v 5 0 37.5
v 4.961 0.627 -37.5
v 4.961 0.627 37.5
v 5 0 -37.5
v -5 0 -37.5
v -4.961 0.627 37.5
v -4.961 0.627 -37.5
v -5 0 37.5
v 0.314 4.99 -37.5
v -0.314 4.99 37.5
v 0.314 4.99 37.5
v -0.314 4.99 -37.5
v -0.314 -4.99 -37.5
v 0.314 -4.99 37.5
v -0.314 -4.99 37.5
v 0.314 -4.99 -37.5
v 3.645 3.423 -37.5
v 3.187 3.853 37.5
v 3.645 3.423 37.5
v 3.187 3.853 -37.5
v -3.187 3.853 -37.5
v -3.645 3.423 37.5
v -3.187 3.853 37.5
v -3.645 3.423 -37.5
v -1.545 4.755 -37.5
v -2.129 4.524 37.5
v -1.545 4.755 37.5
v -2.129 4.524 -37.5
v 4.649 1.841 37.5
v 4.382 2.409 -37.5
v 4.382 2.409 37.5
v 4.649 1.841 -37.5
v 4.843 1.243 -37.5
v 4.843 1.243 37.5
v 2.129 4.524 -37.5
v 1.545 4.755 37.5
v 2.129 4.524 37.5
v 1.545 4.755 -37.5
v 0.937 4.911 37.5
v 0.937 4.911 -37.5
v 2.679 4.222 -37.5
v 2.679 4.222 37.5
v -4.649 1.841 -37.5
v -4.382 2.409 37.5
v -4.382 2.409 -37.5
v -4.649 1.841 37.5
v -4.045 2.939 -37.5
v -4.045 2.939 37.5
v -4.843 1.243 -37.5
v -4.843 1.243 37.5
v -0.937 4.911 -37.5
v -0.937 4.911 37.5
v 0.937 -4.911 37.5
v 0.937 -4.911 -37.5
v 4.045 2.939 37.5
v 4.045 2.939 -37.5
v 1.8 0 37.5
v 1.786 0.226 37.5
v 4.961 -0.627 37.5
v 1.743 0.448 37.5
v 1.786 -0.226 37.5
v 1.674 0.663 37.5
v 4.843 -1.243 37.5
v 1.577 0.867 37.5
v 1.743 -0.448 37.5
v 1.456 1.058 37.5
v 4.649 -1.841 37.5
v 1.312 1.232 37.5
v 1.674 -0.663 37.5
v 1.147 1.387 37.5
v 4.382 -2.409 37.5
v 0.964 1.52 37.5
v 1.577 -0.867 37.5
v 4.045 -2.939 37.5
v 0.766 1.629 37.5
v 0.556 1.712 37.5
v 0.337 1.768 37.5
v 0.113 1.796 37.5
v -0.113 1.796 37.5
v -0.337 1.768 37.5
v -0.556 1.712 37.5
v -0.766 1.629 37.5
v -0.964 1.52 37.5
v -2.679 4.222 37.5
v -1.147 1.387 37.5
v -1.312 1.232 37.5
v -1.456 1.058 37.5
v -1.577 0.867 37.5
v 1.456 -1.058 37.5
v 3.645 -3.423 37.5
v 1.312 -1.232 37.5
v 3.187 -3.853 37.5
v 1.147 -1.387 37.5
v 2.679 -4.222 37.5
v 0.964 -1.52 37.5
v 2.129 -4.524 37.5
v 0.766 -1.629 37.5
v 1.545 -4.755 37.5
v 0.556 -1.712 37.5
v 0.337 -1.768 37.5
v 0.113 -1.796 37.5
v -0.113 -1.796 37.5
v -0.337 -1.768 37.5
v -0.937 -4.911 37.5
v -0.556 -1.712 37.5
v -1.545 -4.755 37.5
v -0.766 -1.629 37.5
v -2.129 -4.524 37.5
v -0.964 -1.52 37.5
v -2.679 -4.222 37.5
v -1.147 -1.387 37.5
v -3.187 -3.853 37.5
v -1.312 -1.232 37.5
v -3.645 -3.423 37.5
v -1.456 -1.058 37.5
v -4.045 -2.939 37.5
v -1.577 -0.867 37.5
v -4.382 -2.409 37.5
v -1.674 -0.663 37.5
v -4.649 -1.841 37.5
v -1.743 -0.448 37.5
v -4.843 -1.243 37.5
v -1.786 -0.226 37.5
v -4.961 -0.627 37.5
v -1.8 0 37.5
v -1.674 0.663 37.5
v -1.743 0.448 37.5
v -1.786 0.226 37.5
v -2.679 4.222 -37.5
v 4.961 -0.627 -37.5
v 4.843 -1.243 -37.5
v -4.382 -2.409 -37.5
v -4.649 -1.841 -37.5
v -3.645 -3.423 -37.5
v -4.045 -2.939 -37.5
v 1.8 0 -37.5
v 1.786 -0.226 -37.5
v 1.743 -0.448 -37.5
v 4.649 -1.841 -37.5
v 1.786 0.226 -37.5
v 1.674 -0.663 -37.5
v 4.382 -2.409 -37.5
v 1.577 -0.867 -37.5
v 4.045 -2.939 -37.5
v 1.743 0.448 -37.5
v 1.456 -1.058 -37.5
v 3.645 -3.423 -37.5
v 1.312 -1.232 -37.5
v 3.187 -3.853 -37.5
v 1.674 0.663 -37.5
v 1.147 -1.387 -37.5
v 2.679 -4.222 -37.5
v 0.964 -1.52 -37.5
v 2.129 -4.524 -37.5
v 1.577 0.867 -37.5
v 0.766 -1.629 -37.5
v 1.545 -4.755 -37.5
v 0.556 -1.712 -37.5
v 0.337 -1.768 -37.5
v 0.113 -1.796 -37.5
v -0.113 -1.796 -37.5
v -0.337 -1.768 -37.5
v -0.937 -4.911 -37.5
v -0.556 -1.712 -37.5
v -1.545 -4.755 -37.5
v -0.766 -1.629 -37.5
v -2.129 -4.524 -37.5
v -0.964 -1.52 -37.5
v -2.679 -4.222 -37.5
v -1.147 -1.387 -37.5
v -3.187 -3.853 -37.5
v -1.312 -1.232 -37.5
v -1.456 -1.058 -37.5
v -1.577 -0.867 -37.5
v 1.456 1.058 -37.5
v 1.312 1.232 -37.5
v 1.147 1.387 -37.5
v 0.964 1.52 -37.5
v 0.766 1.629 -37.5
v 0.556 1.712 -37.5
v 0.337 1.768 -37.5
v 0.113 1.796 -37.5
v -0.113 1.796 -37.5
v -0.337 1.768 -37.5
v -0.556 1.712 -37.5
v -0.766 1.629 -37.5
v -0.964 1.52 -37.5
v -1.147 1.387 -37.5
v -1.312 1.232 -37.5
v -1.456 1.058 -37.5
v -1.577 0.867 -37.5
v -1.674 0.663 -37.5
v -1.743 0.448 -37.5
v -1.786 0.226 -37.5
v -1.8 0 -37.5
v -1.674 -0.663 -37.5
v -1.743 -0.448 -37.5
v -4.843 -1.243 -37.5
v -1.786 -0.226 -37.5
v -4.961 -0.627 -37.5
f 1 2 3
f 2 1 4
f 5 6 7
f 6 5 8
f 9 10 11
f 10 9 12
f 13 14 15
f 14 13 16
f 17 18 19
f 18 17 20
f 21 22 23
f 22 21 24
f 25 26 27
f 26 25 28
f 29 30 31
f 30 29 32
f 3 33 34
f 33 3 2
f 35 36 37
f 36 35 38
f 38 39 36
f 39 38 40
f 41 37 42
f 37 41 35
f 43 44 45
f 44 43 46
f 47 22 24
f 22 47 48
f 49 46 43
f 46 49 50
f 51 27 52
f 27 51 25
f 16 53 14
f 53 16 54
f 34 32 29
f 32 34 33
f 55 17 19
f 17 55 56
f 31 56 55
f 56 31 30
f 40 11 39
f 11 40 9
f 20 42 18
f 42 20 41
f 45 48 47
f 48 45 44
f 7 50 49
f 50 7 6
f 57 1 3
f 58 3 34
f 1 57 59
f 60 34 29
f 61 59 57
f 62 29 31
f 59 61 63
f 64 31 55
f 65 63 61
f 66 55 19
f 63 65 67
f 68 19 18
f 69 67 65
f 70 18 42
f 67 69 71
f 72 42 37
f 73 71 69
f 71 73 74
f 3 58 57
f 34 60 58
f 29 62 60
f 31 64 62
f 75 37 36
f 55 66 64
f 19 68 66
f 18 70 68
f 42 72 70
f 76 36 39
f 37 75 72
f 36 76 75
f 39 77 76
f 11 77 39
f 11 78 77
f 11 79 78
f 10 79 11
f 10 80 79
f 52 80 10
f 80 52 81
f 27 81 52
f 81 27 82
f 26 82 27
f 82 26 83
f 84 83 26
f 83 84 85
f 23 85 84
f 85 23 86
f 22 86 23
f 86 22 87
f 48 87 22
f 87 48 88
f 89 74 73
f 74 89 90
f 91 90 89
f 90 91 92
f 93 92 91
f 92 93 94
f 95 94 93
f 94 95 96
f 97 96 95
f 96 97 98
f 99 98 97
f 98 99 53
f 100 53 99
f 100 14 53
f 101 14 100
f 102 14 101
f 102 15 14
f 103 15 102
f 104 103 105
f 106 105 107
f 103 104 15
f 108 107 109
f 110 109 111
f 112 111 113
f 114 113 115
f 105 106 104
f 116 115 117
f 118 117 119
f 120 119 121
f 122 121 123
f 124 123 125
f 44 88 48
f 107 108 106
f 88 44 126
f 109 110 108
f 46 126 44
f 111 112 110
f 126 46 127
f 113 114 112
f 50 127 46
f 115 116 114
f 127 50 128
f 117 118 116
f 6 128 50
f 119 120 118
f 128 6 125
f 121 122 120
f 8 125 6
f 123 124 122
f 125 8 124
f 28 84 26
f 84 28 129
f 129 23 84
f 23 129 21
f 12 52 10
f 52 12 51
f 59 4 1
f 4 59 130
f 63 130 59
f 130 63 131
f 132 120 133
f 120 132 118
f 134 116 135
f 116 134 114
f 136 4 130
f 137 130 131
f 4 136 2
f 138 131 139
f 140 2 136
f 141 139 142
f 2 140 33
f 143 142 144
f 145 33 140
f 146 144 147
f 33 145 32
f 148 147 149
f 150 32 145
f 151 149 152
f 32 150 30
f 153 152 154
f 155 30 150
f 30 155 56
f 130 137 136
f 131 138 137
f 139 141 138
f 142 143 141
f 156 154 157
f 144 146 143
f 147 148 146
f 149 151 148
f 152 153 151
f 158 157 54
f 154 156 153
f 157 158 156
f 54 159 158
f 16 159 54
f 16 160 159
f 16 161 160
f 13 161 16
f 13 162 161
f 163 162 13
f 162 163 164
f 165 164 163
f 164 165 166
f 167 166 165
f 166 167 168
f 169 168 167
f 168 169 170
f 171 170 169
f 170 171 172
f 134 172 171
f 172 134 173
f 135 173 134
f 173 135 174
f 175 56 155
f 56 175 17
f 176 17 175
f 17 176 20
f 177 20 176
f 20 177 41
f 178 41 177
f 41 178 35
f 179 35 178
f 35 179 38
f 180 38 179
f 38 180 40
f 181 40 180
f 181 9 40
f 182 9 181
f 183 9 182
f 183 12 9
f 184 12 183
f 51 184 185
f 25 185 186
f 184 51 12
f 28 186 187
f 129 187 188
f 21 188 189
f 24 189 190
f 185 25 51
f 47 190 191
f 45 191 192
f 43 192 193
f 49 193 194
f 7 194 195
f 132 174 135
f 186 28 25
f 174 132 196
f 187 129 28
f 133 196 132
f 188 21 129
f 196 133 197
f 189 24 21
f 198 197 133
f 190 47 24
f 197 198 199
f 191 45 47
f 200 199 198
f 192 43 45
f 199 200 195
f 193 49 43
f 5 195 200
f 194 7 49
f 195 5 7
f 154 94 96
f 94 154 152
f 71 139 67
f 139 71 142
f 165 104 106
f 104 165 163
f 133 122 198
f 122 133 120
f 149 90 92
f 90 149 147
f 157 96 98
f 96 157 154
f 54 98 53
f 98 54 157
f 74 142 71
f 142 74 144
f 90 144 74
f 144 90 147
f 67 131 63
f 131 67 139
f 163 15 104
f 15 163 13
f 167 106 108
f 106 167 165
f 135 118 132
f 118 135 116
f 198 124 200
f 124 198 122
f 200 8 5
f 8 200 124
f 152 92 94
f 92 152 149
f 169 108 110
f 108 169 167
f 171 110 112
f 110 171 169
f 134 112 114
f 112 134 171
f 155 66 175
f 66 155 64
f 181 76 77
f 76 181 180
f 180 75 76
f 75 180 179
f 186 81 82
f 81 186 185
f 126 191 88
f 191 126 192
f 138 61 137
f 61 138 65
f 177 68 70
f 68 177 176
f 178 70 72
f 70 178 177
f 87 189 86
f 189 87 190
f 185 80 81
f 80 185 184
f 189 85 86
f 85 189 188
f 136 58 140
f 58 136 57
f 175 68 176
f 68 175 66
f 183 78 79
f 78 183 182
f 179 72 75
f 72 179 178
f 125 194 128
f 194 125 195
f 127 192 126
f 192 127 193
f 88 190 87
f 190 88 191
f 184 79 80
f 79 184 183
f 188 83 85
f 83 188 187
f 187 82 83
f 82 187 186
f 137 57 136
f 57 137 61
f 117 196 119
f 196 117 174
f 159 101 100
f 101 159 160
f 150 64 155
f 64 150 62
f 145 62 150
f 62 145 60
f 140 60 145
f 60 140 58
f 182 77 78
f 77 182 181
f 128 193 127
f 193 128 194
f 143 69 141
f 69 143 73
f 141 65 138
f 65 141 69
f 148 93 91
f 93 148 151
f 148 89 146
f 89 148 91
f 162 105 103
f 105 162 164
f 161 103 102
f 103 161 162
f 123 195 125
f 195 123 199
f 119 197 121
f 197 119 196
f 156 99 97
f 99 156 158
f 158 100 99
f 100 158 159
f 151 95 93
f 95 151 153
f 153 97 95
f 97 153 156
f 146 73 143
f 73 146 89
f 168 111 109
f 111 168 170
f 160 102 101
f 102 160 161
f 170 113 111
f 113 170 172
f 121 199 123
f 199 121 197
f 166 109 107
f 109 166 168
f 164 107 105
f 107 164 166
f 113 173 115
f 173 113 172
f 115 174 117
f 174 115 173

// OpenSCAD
$fn = 50;


difference() {
	union() {
		translate(v = [0, 0, -37.5000000000]) {
			cylinder(h = 75, r = 5.0000000000);
		}
	}
	union() {
		translate(v = [0, 0, -100.0000000000]) {
			cylinder(h = 200, r = 1.8000000000);
		}
	}
}
